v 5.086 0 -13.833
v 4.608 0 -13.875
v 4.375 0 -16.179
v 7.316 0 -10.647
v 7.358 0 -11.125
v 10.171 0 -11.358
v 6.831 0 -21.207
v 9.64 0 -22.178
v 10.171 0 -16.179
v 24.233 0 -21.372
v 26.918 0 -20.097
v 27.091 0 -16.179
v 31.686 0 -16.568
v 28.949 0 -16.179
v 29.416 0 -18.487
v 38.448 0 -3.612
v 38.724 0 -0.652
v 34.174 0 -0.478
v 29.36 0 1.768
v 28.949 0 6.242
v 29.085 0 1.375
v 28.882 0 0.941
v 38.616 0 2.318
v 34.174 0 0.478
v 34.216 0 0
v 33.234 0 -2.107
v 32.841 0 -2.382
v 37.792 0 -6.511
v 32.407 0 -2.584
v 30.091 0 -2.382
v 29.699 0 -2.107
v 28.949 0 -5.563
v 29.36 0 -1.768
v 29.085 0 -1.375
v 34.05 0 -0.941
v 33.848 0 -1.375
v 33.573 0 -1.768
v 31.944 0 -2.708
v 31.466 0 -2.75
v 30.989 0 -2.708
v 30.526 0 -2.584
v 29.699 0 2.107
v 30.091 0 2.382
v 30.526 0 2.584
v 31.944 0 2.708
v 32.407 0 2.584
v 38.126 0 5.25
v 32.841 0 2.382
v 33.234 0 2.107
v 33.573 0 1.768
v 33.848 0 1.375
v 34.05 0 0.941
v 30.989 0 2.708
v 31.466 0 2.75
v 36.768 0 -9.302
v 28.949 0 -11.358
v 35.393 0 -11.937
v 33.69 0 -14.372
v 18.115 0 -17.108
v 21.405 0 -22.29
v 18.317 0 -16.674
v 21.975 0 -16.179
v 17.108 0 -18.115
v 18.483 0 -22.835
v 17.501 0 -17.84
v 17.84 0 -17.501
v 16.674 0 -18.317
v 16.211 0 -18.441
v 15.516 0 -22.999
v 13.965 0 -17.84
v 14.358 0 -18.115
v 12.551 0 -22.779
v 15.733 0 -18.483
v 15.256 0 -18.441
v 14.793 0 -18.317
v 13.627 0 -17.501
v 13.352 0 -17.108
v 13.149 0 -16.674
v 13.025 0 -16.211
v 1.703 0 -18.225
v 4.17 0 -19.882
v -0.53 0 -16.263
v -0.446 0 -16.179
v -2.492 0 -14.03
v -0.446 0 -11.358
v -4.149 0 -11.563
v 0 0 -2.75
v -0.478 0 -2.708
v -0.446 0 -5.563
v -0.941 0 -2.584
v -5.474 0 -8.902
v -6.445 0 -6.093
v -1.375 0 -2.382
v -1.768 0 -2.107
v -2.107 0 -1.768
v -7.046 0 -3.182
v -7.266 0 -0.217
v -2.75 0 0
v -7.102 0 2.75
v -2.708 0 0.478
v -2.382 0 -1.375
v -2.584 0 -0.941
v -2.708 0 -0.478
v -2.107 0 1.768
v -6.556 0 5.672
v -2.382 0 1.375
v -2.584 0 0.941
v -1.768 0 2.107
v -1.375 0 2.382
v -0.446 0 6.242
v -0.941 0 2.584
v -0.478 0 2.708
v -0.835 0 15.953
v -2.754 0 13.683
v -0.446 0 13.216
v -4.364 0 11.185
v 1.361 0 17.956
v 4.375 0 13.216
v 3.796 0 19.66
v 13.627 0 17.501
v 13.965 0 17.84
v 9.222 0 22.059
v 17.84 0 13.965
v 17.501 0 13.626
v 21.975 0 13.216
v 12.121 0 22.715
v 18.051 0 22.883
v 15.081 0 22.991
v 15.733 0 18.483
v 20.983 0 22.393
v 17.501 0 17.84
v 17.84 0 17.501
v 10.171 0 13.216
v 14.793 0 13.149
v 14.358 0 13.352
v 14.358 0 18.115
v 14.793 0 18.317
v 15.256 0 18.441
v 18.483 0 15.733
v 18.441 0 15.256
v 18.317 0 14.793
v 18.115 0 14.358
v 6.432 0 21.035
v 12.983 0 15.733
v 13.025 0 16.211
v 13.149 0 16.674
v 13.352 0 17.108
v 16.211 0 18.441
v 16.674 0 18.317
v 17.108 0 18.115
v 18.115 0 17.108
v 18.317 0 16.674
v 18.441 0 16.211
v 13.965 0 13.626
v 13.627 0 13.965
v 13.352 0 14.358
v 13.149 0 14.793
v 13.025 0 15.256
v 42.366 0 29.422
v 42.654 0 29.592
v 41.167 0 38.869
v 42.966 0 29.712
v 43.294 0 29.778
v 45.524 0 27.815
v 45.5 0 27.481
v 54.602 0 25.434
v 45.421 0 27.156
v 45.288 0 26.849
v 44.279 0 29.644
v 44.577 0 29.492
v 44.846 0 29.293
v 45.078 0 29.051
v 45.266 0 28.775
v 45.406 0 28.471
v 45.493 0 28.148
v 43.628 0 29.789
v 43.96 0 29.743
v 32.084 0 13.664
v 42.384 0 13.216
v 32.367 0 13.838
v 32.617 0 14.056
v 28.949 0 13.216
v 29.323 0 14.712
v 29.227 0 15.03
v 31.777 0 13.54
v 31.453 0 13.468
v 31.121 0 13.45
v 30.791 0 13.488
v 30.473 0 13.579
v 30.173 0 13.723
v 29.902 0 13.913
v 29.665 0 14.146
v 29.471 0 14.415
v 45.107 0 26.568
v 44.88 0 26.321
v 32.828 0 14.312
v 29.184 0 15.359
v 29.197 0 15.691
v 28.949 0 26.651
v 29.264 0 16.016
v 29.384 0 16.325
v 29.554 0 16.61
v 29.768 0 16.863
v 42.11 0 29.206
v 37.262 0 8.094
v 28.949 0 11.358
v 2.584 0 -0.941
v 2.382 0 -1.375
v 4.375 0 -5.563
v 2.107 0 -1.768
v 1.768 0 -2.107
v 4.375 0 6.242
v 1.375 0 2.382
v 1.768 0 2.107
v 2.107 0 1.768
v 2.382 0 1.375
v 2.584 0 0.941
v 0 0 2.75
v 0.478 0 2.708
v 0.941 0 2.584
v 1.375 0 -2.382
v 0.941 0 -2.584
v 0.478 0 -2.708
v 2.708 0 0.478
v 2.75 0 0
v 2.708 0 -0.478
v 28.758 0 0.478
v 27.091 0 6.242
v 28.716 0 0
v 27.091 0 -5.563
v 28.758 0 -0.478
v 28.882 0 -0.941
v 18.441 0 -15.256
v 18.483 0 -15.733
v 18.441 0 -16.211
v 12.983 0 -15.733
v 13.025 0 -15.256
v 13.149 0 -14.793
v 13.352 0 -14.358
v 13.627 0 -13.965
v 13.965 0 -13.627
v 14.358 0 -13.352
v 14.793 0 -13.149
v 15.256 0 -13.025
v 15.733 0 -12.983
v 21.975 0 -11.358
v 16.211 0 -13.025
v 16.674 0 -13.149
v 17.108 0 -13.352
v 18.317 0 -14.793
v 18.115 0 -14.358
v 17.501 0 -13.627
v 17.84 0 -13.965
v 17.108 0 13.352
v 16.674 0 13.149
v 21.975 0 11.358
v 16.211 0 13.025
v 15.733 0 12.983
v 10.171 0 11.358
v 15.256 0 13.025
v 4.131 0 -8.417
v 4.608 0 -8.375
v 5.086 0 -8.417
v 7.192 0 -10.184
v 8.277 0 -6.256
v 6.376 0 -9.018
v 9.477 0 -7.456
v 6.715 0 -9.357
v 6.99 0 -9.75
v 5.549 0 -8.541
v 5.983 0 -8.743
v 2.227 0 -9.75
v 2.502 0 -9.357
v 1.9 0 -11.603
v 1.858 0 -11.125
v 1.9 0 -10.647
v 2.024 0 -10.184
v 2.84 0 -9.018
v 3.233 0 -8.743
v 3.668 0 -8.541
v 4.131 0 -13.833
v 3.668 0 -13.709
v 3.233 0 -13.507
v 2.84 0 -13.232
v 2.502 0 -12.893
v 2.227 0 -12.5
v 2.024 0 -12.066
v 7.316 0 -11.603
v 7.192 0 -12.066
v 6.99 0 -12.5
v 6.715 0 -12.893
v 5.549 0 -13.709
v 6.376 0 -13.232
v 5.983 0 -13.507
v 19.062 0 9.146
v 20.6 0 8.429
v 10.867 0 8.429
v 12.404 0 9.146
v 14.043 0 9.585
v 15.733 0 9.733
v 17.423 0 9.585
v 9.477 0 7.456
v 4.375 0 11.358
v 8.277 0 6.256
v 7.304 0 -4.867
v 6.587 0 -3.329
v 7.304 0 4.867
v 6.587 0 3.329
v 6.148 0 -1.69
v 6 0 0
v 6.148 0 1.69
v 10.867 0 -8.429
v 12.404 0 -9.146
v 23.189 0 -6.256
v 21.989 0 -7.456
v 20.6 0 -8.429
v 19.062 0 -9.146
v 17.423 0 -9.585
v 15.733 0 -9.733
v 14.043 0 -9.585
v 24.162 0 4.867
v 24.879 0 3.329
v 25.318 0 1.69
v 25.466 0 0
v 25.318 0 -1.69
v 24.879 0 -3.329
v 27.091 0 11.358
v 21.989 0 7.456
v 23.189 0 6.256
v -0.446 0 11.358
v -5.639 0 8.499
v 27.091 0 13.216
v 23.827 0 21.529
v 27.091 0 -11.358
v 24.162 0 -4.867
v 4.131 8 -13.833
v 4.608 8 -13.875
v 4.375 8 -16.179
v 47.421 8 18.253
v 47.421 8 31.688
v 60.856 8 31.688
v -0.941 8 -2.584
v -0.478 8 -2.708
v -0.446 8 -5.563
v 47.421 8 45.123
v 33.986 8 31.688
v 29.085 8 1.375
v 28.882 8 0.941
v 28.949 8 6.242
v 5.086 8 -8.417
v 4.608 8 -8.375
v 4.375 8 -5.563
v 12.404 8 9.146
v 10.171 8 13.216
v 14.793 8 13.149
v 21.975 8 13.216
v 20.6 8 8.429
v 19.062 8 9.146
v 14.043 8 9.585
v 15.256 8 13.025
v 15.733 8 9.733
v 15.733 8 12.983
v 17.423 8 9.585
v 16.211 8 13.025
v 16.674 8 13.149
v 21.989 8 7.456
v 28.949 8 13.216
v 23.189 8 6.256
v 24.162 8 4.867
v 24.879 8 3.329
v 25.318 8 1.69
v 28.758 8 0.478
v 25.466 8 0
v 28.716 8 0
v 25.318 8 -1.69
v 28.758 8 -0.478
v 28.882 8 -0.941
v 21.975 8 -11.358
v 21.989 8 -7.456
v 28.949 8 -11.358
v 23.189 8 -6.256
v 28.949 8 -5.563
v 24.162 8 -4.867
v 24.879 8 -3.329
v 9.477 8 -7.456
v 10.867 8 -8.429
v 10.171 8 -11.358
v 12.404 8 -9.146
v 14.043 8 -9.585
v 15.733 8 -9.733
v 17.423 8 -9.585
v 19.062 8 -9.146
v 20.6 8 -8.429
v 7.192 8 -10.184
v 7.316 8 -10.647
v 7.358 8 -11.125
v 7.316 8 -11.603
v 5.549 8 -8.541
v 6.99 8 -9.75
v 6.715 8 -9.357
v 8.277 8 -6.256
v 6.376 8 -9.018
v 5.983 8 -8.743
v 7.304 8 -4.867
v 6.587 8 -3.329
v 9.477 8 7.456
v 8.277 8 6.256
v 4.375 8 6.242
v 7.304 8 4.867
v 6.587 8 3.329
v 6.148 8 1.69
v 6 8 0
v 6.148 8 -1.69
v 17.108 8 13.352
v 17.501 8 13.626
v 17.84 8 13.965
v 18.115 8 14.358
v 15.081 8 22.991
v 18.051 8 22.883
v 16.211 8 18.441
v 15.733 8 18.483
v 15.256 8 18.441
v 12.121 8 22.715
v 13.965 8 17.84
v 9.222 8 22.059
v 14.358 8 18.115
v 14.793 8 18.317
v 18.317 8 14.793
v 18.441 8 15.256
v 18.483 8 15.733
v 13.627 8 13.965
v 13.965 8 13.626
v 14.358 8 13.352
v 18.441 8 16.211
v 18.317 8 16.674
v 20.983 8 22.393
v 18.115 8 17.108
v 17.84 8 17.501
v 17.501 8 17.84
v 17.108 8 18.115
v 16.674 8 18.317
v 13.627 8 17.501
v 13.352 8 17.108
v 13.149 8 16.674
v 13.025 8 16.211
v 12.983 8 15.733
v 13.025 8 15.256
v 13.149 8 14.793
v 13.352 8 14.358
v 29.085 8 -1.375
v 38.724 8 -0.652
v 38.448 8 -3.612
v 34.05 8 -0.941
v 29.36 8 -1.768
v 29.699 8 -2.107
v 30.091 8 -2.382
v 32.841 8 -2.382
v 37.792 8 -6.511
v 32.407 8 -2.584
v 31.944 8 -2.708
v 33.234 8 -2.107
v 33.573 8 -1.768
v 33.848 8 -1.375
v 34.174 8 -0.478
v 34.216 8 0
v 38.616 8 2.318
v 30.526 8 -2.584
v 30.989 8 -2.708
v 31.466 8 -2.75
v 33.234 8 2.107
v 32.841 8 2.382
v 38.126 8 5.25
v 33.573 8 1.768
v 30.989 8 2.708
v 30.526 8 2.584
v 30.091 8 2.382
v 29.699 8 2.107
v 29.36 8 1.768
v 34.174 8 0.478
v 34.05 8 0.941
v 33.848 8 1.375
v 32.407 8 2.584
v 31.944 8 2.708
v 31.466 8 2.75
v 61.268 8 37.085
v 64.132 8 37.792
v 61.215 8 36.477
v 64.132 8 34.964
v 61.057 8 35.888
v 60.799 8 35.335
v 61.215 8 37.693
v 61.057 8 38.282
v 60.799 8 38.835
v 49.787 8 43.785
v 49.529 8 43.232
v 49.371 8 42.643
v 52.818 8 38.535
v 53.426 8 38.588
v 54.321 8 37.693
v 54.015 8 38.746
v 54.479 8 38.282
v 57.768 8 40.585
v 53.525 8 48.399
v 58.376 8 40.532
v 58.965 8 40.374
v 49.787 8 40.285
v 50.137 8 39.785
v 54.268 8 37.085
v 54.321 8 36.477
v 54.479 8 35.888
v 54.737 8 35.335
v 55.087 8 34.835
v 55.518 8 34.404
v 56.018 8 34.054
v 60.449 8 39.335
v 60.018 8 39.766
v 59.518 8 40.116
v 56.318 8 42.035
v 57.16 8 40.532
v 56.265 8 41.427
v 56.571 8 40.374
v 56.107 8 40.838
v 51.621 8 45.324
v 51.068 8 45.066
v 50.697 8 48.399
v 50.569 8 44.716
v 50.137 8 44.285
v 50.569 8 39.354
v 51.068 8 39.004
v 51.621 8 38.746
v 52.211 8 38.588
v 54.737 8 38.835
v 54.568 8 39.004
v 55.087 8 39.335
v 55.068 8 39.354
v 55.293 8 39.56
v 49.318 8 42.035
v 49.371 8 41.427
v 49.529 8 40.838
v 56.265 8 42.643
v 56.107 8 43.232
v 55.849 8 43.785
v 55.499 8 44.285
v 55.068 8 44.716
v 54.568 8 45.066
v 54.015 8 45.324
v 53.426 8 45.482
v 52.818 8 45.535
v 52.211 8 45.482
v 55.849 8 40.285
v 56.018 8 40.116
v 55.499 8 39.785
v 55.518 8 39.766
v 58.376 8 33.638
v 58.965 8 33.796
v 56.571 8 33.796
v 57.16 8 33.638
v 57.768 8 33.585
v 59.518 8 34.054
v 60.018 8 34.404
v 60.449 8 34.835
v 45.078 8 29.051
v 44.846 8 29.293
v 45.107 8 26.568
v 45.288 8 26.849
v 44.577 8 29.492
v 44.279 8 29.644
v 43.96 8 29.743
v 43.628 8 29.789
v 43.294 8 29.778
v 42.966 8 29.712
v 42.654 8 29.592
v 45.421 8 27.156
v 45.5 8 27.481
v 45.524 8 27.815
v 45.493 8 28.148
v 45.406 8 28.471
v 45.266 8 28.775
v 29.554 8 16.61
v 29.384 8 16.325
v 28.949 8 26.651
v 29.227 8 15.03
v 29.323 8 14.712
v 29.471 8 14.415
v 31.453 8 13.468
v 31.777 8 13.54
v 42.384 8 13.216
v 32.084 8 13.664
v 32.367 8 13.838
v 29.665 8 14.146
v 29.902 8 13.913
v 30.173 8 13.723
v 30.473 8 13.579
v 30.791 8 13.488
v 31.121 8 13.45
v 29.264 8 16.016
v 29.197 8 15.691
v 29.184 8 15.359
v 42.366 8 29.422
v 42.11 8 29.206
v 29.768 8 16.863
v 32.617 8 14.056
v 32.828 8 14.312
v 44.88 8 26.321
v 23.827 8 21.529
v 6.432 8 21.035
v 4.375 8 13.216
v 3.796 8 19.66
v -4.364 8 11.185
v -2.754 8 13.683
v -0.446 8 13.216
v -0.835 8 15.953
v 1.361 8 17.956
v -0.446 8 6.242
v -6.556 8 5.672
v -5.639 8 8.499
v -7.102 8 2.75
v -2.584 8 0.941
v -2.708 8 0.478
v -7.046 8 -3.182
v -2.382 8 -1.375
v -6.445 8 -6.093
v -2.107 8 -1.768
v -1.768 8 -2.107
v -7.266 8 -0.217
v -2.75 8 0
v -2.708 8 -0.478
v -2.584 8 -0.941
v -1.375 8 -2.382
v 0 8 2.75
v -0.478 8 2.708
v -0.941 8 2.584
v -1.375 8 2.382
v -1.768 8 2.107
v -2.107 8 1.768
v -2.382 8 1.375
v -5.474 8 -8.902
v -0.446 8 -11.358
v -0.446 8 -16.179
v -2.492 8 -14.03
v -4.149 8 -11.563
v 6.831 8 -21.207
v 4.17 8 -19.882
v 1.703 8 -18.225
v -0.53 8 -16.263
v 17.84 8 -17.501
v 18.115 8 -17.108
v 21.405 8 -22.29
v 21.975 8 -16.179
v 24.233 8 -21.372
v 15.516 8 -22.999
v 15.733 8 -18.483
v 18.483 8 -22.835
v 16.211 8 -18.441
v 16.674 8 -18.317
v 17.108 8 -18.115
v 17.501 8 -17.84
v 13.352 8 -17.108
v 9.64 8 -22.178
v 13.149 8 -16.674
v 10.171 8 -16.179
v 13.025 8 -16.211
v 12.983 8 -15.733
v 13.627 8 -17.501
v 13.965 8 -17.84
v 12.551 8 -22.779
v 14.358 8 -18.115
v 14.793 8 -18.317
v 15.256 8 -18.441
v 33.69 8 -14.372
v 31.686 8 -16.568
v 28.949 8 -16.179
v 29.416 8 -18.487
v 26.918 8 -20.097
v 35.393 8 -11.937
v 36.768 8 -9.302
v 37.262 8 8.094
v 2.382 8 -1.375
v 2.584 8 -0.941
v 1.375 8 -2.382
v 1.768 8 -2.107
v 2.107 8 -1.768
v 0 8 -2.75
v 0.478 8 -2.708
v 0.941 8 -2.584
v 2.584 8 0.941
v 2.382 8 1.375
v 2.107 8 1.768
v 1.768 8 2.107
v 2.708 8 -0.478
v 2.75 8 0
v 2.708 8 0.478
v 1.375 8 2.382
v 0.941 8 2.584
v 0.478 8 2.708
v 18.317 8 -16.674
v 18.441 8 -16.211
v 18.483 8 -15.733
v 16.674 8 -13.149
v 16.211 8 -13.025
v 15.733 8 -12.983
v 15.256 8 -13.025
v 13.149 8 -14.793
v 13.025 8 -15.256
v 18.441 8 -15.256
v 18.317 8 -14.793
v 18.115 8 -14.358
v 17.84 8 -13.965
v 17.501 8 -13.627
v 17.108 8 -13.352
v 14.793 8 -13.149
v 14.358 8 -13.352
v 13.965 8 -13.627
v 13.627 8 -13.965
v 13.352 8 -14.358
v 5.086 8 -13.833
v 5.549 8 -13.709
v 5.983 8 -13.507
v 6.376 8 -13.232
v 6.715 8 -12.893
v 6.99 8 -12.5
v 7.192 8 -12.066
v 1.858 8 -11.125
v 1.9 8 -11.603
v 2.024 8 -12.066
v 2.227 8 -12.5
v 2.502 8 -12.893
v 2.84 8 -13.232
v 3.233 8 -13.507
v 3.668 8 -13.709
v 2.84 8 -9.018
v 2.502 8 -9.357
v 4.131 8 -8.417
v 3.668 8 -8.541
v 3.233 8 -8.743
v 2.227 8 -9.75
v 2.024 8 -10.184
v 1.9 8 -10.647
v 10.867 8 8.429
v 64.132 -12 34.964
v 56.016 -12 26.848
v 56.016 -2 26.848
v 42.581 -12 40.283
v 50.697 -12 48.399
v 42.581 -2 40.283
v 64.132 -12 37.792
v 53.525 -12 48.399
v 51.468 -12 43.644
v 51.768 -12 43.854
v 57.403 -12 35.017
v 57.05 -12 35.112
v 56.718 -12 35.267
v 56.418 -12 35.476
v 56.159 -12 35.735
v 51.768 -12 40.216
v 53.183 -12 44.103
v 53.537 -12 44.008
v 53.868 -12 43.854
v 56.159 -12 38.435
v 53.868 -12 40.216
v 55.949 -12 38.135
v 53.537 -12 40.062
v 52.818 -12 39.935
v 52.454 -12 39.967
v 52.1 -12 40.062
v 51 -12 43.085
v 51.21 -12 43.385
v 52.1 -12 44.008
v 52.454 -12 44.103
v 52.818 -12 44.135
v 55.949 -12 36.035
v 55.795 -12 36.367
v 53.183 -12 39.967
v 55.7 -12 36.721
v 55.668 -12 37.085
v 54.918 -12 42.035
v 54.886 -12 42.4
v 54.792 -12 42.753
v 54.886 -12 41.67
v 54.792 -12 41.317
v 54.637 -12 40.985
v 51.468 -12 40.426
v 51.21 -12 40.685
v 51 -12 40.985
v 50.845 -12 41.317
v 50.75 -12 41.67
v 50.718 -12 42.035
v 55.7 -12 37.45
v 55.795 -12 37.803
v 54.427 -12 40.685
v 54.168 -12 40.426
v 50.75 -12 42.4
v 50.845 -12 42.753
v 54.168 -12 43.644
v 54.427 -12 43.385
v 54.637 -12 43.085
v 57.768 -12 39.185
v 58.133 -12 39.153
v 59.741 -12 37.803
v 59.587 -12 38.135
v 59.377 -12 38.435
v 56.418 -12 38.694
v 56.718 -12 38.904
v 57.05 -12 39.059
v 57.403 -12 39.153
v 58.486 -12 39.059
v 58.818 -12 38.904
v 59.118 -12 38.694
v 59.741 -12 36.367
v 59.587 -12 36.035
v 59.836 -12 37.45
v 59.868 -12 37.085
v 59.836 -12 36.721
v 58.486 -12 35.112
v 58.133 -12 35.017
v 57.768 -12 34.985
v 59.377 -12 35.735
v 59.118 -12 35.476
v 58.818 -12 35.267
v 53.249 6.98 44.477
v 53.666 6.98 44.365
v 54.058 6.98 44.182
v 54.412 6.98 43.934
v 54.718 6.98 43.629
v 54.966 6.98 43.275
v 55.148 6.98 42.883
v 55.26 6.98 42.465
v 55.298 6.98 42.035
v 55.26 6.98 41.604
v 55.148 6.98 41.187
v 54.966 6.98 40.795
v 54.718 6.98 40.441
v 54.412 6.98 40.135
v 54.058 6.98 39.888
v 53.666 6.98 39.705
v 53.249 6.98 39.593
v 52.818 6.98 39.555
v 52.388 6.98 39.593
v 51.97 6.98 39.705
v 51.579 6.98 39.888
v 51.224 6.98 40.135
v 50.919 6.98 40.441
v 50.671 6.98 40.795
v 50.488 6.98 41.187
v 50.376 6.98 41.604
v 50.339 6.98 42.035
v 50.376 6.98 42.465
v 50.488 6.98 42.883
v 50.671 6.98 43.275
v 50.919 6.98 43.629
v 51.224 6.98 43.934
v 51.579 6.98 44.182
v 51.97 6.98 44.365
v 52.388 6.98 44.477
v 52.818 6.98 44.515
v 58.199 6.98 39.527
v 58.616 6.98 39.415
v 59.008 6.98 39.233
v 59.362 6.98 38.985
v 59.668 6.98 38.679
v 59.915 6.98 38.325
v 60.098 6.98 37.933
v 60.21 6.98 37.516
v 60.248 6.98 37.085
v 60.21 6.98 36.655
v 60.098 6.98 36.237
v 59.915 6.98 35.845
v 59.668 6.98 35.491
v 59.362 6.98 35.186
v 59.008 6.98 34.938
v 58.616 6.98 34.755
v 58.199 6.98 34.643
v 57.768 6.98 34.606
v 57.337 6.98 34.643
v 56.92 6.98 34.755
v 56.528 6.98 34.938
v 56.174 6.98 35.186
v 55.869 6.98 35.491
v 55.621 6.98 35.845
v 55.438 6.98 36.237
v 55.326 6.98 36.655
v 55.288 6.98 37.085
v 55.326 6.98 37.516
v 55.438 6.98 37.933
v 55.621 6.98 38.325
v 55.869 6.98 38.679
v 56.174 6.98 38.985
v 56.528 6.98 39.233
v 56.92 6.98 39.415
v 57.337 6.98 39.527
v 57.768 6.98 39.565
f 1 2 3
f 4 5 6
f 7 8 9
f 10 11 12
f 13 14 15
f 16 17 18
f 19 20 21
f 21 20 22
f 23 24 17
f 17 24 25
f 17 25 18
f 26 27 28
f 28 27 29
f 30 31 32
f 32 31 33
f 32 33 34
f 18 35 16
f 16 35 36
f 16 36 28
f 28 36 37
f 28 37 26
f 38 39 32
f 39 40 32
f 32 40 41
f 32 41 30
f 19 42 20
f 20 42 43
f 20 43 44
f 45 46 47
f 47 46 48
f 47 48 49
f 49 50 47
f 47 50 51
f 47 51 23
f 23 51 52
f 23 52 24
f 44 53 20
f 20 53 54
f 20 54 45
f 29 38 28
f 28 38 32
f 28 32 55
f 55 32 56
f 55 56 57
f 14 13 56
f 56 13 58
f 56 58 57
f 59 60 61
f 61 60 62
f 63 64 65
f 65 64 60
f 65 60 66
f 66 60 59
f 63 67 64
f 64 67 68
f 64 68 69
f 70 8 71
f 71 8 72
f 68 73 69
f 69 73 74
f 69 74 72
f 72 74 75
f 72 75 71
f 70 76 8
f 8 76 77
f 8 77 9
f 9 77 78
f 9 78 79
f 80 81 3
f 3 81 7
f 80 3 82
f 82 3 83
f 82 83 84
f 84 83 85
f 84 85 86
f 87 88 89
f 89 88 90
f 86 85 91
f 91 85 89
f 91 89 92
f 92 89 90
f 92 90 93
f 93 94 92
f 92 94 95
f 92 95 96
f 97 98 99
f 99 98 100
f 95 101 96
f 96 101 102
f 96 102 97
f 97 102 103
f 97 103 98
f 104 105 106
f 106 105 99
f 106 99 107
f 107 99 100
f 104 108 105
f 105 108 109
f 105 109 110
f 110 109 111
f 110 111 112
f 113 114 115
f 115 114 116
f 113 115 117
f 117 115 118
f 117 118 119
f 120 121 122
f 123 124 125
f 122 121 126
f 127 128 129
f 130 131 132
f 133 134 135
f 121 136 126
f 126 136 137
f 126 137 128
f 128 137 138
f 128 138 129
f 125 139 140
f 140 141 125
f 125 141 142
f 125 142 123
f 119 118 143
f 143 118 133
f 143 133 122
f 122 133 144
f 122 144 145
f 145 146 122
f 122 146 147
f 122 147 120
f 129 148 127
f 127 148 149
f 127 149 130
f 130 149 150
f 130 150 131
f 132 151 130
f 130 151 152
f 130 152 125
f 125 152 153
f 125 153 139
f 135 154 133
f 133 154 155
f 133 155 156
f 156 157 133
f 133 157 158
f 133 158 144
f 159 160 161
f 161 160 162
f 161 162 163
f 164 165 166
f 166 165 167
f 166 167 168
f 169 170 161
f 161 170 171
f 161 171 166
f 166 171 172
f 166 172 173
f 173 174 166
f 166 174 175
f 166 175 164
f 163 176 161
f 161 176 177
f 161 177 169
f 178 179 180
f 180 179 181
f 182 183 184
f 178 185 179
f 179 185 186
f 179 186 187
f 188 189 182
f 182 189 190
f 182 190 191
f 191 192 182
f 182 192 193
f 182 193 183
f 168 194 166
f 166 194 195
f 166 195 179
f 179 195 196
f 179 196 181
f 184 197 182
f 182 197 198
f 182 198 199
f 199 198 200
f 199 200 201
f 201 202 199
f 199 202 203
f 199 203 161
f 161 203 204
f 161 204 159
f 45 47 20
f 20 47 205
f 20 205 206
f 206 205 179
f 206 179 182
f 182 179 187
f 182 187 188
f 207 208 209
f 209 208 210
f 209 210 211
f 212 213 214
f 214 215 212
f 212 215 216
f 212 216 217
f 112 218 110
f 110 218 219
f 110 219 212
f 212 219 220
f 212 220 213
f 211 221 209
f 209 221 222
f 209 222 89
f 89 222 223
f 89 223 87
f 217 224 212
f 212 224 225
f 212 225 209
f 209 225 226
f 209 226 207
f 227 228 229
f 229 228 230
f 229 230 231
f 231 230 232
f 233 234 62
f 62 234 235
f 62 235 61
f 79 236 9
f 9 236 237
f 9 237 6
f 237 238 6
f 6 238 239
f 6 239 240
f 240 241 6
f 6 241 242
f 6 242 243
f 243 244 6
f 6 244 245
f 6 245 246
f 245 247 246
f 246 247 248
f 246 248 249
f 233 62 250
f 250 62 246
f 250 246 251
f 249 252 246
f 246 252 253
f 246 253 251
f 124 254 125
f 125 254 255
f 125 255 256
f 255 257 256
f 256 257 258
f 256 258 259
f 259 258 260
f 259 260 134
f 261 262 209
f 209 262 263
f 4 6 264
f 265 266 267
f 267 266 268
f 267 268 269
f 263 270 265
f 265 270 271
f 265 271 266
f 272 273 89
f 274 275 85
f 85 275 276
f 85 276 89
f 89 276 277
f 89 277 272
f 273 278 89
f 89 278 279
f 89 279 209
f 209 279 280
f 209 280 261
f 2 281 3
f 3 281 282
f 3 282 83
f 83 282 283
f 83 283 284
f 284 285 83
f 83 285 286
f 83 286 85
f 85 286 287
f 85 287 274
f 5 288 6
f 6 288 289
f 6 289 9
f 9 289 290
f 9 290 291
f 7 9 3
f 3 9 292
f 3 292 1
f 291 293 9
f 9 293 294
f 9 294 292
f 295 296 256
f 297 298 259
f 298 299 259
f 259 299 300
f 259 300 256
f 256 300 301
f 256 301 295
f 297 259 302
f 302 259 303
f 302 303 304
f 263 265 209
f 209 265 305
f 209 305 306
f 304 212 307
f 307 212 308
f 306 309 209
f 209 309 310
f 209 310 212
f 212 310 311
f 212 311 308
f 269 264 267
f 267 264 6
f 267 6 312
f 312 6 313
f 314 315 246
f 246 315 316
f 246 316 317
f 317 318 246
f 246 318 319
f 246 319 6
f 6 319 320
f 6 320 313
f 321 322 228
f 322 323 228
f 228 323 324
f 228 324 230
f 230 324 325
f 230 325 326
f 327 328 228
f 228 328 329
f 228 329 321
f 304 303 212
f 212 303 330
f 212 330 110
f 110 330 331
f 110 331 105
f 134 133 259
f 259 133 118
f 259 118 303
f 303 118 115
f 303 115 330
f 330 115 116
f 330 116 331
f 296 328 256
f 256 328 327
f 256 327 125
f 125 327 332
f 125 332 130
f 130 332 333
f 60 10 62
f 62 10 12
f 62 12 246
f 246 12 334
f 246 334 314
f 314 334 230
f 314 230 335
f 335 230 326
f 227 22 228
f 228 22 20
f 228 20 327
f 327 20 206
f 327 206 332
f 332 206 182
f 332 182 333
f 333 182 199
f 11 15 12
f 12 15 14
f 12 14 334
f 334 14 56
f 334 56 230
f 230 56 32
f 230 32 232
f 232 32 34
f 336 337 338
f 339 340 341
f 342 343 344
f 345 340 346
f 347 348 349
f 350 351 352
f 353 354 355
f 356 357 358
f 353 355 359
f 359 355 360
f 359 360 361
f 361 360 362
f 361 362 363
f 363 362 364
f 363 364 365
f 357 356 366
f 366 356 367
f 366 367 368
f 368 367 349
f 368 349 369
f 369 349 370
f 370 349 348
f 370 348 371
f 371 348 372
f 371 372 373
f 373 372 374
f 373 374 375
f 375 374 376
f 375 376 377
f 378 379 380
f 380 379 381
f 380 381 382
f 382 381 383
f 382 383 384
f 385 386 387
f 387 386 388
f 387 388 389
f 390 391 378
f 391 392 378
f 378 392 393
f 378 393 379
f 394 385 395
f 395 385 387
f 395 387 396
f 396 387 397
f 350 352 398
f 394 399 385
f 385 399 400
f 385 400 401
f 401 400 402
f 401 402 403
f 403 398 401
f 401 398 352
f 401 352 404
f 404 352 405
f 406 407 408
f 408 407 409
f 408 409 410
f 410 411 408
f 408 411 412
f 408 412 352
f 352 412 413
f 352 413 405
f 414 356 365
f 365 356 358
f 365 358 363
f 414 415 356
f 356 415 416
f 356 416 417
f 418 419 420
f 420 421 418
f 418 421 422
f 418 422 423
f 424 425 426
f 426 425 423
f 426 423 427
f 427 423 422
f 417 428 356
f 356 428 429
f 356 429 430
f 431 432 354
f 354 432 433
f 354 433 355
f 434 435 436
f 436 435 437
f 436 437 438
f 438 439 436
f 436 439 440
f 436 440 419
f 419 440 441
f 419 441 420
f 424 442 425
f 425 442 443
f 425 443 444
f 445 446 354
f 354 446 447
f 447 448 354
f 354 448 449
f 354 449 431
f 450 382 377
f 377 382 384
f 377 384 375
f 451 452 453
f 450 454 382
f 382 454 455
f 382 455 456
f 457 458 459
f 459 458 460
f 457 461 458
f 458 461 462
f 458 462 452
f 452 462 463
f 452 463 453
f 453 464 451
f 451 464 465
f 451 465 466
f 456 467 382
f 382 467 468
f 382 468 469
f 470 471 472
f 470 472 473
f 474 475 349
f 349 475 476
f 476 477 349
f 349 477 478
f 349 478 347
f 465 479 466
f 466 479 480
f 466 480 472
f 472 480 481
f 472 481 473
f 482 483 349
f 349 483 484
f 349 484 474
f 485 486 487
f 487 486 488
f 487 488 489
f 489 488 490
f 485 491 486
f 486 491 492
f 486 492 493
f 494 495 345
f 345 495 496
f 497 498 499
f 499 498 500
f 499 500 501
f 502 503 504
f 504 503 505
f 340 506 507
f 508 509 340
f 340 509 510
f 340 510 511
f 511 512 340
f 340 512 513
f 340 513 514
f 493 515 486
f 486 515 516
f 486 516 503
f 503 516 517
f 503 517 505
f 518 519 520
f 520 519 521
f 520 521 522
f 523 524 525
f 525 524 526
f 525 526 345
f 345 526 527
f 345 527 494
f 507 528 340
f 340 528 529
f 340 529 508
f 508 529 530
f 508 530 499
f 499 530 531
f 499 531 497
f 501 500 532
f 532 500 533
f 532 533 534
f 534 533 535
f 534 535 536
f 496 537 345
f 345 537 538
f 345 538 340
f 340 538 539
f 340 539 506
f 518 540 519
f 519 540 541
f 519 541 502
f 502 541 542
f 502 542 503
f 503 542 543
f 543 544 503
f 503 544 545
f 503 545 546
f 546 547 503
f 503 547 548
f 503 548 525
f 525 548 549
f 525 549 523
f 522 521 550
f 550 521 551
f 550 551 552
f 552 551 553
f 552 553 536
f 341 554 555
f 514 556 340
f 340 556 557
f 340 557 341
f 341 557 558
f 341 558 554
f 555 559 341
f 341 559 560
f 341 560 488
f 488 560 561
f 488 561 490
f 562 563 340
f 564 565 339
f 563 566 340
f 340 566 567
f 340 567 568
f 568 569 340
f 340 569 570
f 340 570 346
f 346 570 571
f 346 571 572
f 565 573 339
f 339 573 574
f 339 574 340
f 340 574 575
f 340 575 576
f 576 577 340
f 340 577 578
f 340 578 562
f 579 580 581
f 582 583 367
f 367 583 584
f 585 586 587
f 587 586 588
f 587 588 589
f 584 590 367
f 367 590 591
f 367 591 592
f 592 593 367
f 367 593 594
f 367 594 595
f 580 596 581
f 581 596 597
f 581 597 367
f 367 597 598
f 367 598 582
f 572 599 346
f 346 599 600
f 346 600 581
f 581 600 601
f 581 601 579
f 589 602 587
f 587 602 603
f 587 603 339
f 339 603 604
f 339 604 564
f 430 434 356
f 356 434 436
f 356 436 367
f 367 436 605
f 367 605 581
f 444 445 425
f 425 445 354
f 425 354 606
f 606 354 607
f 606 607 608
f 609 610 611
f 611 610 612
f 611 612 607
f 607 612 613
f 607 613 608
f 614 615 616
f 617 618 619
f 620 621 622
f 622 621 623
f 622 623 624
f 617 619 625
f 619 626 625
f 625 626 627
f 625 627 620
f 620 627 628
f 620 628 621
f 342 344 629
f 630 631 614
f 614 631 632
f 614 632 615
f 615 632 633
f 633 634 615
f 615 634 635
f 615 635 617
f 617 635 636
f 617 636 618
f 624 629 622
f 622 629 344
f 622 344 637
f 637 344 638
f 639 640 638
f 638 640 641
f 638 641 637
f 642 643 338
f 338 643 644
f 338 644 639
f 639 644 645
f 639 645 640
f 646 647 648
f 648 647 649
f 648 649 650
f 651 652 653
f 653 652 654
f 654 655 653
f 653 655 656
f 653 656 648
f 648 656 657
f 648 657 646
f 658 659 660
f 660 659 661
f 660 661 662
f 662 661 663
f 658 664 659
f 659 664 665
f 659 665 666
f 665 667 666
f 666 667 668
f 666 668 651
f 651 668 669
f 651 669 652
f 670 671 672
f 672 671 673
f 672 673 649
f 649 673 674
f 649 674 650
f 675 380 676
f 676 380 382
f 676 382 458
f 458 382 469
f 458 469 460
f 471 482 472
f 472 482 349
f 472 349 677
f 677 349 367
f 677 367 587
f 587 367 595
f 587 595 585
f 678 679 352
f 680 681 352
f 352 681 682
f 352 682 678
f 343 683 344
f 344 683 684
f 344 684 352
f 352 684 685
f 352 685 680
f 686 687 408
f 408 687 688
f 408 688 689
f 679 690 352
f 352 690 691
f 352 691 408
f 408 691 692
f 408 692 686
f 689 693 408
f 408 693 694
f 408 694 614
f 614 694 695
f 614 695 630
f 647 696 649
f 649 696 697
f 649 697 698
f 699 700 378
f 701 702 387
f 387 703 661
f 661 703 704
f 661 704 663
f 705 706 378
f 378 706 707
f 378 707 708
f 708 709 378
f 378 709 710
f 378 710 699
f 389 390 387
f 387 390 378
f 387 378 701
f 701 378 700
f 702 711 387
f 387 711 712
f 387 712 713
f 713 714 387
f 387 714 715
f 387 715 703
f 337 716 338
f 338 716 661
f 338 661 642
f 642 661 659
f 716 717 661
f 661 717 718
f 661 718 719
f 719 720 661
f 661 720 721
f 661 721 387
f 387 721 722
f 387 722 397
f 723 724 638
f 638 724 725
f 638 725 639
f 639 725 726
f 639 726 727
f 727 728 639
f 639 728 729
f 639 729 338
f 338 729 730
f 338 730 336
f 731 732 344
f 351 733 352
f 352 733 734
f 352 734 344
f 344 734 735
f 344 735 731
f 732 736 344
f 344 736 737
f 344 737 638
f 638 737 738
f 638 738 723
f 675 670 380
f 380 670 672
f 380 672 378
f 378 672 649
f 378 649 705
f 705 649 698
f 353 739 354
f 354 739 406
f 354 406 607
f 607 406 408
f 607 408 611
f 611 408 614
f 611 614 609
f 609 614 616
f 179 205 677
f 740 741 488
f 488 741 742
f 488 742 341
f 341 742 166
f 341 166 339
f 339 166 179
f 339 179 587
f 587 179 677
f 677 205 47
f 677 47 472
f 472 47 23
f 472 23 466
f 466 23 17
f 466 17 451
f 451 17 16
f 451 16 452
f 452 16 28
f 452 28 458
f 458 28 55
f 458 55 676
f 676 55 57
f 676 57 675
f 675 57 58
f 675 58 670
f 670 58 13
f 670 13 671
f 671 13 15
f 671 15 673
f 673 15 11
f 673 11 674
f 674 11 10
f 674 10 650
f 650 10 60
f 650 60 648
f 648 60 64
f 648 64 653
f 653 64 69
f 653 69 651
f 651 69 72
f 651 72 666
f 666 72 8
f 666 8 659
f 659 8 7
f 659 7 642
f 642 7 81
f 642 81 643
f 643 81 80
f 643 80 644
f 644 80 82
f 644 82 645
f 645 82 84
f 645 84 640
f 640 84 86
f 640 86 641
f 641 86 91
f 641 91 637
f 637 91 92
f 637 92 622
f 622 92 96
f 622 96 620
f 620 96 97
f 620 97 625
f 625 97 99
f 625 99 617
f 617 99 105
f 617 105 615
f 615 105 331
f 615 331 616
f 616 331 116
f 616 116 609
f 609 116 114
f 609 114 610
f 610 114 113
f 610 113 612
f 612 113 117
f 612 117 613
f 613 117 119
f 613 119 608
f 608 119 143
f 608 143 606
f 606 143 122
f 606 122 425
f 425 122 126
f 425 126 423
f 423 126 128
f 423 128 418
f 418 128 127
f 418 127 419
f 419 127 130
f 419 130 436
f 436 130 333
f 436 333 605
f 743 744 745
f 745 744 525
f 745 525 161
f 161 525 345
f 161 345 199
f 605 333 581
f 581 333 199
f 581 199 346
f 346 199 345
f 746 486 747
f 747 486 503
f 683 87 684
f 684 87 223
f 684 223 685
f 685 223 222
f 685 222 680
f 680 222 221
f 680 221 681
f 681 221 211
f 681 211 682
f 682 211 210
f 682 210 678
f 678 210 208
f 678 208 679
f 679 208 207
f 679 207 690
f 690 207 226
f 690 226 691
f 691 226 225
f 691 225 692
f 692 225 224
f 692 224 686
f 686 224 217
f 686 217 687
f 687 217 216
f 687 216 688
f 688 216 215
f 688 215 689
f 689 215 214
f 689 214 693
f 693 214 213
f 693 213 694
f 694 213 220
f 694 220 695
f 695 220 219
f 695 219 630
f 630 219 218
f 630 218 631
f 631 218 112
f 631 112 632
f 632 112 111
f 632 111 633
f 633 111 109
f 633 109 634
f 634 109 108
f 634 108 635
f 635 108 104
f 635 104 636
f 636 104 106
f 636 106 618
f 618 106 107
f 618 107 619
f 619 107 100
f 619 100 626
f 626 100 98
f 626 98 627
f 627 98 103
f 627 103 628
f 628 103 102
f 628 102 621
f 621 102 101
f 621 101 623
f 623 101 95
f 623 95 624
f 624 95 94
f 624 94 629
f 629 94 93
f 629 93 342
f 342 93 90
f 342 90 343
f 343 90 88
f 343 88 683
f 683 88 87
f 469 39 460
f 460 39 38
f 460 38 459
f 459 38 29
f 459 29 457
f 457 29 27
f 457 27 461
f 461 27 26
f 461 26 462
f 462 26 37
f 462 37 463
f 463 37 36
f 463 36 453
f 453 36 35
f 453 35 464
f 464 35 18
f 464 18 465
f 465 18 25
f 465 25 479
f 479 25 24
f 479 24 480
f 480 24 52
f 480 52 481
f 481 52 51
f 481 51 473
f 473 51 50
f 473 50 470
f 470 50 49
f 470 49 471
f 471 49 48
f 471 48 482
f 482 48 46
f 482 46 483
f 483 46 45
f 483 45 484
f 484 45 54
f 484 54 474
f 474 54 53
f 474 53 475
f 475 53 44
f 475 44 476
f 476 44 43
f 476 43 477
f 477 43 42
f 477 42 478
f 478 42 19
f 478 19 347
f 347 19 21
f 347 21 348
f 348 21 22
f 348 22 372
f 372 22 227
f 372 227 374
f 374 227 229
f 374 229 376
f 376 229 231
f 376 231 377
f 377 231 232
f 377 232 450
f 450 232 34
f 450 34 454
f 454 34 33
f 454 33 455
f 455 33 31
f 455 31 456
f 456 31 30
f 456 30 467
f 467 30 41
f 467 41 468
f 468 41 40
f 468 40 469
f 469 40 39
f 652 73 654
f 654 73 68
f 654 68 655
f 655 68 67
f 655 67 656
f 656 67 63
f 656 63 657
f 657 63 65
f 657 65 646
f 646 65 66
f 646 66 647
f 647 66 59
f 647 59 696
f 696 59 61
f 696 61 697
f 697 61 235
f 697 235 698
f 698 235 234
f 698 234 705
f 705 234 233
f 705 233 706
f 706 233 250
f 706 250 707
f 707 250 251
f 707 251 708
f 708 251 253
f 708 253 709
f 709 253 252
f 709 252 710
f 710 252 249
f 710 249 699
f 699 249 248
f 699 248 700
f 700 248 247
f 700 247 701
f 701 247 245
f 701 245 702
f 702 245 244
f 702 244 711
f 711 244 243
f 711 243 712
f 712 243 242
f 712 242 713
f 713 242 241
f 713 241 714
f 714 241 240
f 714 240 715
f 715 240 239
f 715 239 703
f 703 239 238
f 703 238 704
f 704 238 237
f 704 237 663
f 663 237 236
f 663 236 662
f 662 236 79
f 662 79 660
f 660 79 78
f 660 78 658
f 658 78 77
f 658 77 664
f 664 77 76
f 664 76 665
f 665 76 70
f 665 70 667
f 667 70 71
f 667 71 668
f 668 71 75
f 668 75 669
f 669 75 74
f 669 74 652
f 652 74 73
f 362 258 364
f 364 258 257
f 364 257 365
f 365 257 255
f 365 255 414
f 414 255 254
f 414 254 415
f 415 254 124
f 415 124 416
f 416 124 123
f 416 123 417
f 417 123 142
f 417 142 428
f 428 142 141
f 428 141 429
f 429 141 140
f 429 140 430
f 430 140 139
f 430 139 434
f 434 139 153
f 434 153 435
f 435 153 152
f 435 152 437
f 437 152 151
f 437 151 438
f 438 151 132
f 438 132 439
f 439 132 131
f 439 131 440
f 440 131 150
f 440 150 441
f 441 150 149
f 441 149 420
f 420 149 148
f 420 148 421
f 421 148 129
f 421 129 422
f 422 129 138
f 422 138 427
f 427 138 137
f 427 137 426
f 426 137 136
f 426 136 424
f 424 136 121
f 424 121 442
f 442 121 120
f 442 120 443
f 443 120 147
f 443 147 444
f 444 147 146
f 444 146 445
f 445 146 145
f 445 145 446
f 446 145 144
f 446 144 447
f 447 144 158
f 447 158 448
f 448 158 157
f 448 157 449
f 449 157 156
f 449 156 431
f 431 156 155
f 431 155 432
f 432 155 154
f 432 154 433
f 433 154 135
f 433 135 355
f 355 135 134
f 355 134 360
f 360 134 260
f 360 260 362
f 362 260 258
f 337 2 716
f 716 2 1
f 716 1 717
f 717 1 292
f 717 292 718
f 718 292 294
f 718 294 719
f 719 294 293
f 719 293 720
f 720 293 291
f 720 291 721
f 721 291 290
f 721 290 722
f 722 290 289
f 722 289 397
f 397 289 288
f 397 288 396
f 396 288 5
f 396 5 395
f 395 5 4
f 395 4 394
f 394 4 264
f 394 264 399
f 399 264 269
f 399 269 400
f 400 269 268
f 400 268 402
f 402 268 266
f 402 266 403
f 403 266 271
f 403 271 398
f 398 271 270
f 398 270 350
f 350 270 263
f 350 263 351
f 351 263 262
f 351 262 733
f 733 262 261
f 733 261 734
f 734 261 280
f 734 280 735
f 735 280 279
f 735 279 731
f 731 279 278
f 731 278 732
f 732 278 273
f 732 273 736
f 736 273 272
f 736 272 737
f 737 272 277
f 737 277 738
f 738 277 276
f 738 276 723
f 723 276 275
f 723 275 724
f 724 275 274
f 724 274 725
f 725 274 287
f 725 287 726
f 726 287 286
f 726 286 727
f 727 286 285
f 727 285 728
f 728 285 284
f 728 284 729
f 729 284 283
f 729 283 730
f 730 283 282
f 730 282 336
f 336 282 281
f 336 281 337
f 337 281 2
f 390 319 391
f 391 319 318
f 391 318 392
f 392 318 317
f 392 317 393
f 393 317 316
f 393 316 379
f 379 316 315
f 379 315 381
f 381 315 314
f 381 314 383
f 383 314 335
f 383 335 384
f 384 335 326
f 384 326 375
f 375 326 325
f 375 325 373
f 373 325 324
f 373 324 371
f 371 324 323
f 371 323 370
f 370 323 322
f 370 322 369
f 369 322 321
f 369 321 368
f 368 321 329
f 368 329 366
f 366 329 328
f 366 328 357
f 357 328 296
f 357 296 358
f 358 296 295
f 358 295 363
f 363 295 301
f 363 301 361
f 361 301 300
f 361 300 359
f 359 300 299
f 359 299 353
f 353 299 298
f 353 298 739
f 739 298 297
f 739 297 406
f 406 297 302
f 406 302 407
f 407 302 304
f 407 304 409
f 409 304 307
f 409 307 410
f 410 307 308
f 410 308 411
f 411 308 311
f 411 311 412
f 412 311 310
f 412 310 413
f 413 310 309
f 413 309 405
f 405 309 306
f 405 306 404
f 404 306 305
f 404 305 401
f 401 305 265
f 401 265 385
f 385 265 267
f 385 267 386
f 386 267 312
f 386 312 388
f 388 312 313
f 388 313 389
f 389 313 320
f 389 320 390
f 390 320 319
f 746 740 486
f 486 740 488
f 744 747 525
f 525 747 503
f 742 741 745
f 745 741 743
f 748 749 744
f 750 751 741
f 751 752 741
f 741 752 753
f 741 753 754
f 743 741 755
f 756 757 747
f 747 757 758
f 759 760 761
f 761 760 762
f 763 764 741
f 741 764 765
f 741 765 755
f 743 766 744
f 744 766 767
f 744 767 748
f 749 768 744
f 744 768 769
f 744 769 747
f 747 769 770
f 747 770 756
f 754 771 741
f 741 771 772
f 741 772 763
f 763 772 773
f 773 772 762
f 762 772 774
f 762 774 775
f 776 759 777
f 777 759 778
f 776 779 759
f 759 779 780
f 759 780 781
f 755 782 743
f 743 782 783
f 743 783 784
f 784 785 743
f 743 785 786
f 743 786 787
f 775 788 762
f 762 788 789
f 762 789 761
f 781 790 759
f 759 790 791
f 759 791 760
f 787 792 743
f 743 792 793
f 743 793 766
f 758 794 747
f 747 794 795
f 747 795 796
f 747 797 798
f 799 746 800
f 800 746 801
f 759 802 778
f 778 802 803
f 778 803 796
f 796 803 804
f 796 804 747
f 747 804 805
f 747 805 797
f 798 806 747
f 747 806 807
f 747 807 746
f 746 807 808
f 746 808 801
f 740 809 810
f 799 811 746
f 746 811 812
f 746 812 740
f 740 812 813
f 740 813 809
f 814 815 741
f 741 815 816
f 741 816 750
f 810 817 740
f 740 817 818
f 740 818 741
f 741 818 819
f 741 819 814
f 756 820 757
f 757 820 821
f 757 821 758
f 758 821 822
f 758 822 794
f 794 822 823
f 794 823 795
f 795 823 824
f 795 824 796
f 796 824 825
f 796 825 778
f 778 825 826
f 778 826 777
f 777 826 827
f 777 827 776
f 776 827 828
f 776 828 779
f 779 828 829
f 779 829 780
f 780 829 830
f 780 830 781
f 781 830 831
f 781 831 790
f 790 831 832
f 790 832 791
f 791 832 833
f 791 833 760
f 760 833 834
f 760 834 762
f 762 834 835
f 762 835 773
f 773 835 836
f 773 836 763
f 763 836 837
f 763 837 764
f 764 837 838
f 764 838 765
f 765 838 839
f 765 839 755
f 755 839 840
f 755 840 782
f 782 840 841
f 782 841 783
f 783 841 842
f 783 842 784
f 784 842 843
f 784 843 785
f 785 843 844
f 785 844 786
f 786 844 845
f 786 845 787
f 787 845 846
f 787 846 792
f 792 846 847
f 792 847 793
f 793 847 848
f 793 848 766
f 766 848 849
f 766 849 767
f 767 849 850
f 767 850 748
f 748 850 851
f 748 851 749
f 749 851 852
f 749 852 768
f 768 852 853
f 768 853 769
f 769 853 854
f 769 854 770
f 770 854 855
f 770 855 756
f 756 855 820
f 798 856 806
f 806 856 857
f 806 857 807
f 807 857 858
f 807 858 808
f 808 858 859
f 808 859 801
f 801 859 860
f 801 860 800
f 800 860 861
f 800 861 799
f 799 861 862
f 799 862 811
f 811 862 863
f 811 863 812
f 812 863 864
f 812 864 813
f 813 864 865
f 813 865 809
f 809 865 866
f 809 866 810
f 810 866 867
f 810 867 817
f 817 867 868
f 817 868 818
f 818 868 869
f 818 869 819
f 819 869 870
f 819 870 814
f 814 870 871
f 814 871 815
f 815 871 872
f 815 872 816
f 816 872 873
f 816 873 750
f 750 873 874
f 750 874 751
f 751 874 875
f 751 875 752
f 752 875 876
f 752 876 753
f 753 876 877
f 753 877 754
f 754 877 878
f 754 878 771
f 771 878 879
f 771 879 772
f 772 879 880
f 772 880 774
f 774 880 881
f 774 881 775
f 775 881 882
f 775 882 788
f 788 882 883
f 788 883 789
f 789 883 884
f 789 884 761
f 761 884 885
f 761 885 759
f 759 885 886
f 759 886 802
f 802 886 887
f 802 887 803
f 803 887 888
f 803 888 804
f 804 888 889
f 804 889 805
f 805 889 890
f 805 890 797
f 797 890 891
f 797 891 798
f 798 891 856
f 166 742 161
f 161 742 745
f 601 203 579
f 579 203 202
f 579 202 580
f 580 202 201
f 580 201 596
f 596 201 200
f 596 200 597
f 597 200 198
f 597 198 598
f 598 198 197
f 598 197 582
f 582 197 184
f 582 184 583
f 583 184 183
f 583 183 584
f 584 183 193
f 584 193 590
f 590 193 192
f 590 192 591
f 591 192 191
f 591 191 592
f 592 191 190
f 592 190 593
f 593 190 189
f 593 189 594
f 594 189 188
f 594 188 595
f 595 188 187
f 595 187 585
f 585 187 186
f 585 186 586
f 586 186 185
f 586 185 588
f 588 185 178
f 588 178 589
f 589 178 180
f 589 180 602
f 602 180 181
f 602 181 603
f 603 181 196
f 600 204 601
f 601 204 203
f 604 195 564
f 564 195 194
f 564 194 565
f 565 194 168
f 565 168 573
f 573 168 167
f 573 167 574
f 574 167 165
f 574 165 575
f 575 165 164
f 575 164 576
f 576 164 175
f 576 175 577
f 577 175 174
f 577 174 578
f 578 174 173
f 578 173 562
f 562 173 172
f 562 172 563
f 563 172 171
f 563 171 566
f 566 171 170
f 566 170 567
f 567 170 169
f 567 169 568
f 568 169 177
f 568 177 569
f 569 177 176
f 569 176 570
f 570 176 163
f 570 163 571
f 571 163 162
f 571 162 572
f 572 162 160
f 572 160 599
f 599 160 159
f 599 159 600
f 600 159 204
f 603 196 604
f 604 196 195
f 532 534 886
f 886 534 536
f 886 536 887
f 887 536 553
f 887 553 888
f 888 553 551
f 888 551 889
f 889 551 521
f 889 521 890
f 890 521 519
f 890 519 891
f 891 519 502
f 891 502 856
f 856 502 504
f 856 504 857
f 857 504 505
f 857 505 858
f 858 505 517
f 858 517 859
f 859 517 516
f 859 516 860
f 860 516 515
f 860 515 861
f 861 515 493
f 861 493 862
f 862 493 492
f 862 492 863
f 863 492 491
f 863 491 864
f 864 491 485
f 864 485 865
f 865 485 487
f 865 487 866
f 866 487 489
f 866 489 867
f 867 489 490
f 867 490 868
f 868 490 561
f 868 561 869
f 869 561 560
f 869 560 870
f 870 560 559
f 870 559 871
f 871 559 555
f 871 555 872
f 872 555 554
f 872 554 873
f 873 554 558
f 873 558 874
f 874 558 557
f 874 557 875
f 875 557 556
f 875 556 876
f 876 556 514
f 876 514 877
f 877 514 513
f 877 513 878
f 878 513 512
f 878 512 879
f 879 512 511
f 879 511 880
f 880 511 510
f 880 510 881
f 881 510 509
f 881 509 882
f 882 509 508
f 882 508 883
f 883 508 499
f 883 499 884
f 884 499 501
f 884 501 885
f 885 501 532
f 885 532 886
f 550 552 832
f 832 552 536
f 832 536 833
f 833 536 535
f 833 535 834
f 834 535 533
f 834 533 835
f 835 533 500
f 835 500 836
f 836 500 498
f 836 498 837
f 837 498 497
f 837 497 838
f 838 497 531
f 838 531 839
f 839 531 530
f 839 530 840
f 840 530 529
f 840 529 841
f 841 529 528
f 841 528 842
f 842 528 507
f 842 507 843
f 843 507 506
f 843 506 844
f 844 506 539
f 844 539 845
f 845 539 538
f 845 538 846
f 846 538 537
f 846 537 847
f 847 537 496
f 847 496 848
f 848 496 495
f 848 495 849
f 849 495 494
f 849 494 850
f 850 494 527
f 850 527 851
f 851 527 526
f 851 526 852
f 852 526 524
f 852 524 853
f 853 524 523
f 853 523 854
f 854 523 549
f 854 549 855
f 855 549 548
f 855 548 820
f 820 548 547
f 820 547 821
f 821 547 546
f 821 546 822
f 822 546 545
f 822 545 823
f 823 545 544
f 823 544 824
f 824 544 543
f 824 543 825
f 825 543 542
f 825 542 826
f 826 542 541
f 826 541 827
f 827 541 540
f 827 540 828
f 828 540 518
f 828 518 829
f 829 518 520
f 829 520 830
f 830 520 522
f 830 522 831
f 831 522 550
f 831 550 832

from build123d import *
from OCP.BRepFilletAPI import BRepFilletAPI_MakeChamfer

# Parameters (mm, degrees)
SKETCH2_R               = 2.75
SKETCH2_R_2             = 9.733125881
BOSS_EXTRUDE1_DEPTH     = 8
CHAMFER1_SIZE           = 2
BOSS_EXTRUDE3_DEPTH     = 12
CHAMFER2_SIZE           = 2
CUT_EXTRUDE2_DEPTH      = 82.236487908
CUT_EXTRUDE2_DEPTH_BACK = 82.236487908
CHAMFER3_SIZE           = 1
CHAMFER3_SIZE_2         = 1.020612224


with BuildPart() as part:
    # Sketch2 → Boss-Extrude1 (new body)
    with BuildSketch(Plane(origin=(0, 0, 0), x_dir=(1, 0, 0), z_dir=(0, 1, 0))):
        with BuildLine():
            Line((58.828710372, -43.095584491), (65.546224794, -36.37807007))
            Line((65.546224794, -36.37807007), (37.261953546, -8.093798822))
            ThreePointArc((37.261953546, -8.093798822), (-0.530330086, 16.263455967), (23.826924704, -21.528827665))
            Line((23.826924704, -21.528827665), (52.111195951, -49.813098912))
            Line((52.111195951, -49.813098912), (58.828710372, -43.095584491))
        make_face()
        with Locations(Location((0, 0, 0), (0, 0, 270))):
            Circle(SKETCH2_R, mode=Mode.SUBTRACT)
        with Locations(Location((31.466251763, 0, 0), (0, 0, 270))):
            Circle(SKETCH2_R, mode=Mode.SUBTRACT)
        with Locations(Location((15.733125881, 15.733125881, 0), (0, 0, 270))):
            Circle(SKETCH2_R, mode=Mode.SUBTRACT)
        with Locations(Location((15.733125881, -15.733125881, 0), (0, 0, 270))):
            Circle(SKETCH2_R, mode=Mode.SUBTRACT)
        with Locations(Location((4.608125881, 11.125, 0), (0, 0, 270))):
            Circle(SKETCH2_R, mode=Mode.SUBTRACT)
        with Locations(Location((15.733125881, 0, 0), (0, 0, 270))):
            Circle(SKETCH2_R_2, mode=Mode.SUBTRACT)
    extrude(amount=BOSS_EXTRUDE1_DEPTH)

    # Chamfer1
    chamfer1_edges = [part.edges().sort_by_distance(p)[0] for p in [
        (65.546224794, 4, 36.37807007),
        (52.111195951, 4, 49.813098912),
    ]]
    chamfer(chamfer1_edges, length=CHAMFER1_SIZE)

    # Sketch7 → Boss-Extrude3 (add)
    with BuildSketch(Plane(origin=(0, 0, 0), x_dir=(-1, 0, 0), z_dir=(0, -1, 0))):
        Polygon((-53.525409514, -48.39888535), (-64.132011231, -37.792283632), (-64.132011231, -34.963856507), (-56.016040068, -26.847885344), (-42.581011226, -40.282914187), (-50.696982389, -48.39888535), align=None)
    extrude(amount=BOSS_EXTRUDE3_DEPTH)

    # Sketch8 → Cut-Revolve2 (revolve, cut)
    with BuildSketch(Plane(origin=(47.426613526, 0, 47.426613526), x_dir=(0.7071067811865475, 0, -0.7071067811865477), z_dir=(0.7071067811865477, 0, 0.7071067811865475)), mode=Mode.PRIVATE) as cut_revolve2_sk:
        Polygon((5.525, -12), (5.125, 8), (7.625, 8), (7.625, -12), align=None)
    revolve(cut_revolve2_sk.sketch.rotate(Axis((52.818302732, 8, 42.034924319), (0, -1, 0)), 315), axis=Axis((52.818302732, 8, 42.034924319), (0, -1, 0)), mode=Mode.SUBTRACT)

    # Sketch9 → Cut-Revolve3 (revolve, cut)
    with BuildSketch(Plane(origin=(47.426613526, 0, 47.426613526), x_dir=(0.7071067811865475, 0, -0.7071067811865477), z_dir=(0.7071067811865477, 0, 0.7071067811865475)), mode=Mode.PRIVATE) as cut_revolve3_sk:
        Polygon((14.625, -12), (16.725, -12), (17.125, 8), (14.625, 8), align=None)
    revolve(cut_revolve3_sk.sketch.rotate(Axis((57.768050201, 8, 37.085176851), (0, -1, 0)), 135), axis=Axis((57.768050201, 8, 37.085176851), (0, -1, 0)), mode=Mode.SUBTRACT)

    # Chamfer2
    chamfer2_edges = [part.edges().sort_by_distance(p)[0] for p in [
        (49.298525647, 0, 33.565399766),
    ]]
    chamfer(chamfer2_edges, length=CHAMFER2_SIZE)

    # Sketch10 → Cut-Extrude2 (cut, two sides: drawn at the far end of the back side and taken through both)
    with BuildSketch(Plane.XZ.offset(-CUT_EXTRUDE2_DEPTH_BACK)):
        with BuildLine():
            Line((29.768176219, 16.863477462), (42.110295184, 29.205596427))
            ThreePointArc((42.110295184, 29.205596427), (44.966986546, 29.176755666), (44.880476019, 26.321228875))
            Line((44.880476019, 26.321228875), (32.827718409, 14.312209061))
            ThreePointArc((32.827718409, 14.312209061), (29.901532194, 13.913228795), (29.768176219, 16.863477462))
        make_face()
    extrude(amount=CUT_EXTRUDE2_DEPTH + CUT_EXTRUDE2_DEPTH_BACK, mode=Mode.SUBTRACT)

    # Chamfer3
    chamfer3_edges_1 = [part.edges().sort_by_distance(p)[0] for p in [
        (52.818302732, 8, 39.534924319),
    ]]
    chamfer3_side_1 = [part.faces().sort_by_distance(p)[0] for p in [
        (52.818302732, 8, 39.514924319),
    ]]
    chamfer3_edges_2 = [part.edges().sort_by_distance(p)[0] for p in [
        (57.768050201, 8, 34.585176851),
    ]]
    chamfer3_side_2 = [part.faces().sort_by_distance(p)[0] for p in [
        (57.768050201, 8, 34.565176851),
    ]]
    chamfer3 = BRepFilletAPI_MakeChamfer(part.part.solid().wrapped)
    for e in chamfer3_edges_1:
        chamfer3.Add(CHAMFER3_SIZE - 0.0001, CHAMFER3_SIZE_2 - 0.0001, e.wrapped, chamfer3_side_1[0].wrapped)
    for e in chamfer3_edges_2:
        chamfer3.Add(CHAMFER3_SIZE - 0.0001, CHAMFER3_SIZE_2 - 0.0001, e.wrapped, chamfer3_side_2[0].wrapped)
    add(Compound.cast(chamfer3.Shape()), mode=Mode.REPLACE)  # a hair under: the kernel refuses the full size


solid = part.part
